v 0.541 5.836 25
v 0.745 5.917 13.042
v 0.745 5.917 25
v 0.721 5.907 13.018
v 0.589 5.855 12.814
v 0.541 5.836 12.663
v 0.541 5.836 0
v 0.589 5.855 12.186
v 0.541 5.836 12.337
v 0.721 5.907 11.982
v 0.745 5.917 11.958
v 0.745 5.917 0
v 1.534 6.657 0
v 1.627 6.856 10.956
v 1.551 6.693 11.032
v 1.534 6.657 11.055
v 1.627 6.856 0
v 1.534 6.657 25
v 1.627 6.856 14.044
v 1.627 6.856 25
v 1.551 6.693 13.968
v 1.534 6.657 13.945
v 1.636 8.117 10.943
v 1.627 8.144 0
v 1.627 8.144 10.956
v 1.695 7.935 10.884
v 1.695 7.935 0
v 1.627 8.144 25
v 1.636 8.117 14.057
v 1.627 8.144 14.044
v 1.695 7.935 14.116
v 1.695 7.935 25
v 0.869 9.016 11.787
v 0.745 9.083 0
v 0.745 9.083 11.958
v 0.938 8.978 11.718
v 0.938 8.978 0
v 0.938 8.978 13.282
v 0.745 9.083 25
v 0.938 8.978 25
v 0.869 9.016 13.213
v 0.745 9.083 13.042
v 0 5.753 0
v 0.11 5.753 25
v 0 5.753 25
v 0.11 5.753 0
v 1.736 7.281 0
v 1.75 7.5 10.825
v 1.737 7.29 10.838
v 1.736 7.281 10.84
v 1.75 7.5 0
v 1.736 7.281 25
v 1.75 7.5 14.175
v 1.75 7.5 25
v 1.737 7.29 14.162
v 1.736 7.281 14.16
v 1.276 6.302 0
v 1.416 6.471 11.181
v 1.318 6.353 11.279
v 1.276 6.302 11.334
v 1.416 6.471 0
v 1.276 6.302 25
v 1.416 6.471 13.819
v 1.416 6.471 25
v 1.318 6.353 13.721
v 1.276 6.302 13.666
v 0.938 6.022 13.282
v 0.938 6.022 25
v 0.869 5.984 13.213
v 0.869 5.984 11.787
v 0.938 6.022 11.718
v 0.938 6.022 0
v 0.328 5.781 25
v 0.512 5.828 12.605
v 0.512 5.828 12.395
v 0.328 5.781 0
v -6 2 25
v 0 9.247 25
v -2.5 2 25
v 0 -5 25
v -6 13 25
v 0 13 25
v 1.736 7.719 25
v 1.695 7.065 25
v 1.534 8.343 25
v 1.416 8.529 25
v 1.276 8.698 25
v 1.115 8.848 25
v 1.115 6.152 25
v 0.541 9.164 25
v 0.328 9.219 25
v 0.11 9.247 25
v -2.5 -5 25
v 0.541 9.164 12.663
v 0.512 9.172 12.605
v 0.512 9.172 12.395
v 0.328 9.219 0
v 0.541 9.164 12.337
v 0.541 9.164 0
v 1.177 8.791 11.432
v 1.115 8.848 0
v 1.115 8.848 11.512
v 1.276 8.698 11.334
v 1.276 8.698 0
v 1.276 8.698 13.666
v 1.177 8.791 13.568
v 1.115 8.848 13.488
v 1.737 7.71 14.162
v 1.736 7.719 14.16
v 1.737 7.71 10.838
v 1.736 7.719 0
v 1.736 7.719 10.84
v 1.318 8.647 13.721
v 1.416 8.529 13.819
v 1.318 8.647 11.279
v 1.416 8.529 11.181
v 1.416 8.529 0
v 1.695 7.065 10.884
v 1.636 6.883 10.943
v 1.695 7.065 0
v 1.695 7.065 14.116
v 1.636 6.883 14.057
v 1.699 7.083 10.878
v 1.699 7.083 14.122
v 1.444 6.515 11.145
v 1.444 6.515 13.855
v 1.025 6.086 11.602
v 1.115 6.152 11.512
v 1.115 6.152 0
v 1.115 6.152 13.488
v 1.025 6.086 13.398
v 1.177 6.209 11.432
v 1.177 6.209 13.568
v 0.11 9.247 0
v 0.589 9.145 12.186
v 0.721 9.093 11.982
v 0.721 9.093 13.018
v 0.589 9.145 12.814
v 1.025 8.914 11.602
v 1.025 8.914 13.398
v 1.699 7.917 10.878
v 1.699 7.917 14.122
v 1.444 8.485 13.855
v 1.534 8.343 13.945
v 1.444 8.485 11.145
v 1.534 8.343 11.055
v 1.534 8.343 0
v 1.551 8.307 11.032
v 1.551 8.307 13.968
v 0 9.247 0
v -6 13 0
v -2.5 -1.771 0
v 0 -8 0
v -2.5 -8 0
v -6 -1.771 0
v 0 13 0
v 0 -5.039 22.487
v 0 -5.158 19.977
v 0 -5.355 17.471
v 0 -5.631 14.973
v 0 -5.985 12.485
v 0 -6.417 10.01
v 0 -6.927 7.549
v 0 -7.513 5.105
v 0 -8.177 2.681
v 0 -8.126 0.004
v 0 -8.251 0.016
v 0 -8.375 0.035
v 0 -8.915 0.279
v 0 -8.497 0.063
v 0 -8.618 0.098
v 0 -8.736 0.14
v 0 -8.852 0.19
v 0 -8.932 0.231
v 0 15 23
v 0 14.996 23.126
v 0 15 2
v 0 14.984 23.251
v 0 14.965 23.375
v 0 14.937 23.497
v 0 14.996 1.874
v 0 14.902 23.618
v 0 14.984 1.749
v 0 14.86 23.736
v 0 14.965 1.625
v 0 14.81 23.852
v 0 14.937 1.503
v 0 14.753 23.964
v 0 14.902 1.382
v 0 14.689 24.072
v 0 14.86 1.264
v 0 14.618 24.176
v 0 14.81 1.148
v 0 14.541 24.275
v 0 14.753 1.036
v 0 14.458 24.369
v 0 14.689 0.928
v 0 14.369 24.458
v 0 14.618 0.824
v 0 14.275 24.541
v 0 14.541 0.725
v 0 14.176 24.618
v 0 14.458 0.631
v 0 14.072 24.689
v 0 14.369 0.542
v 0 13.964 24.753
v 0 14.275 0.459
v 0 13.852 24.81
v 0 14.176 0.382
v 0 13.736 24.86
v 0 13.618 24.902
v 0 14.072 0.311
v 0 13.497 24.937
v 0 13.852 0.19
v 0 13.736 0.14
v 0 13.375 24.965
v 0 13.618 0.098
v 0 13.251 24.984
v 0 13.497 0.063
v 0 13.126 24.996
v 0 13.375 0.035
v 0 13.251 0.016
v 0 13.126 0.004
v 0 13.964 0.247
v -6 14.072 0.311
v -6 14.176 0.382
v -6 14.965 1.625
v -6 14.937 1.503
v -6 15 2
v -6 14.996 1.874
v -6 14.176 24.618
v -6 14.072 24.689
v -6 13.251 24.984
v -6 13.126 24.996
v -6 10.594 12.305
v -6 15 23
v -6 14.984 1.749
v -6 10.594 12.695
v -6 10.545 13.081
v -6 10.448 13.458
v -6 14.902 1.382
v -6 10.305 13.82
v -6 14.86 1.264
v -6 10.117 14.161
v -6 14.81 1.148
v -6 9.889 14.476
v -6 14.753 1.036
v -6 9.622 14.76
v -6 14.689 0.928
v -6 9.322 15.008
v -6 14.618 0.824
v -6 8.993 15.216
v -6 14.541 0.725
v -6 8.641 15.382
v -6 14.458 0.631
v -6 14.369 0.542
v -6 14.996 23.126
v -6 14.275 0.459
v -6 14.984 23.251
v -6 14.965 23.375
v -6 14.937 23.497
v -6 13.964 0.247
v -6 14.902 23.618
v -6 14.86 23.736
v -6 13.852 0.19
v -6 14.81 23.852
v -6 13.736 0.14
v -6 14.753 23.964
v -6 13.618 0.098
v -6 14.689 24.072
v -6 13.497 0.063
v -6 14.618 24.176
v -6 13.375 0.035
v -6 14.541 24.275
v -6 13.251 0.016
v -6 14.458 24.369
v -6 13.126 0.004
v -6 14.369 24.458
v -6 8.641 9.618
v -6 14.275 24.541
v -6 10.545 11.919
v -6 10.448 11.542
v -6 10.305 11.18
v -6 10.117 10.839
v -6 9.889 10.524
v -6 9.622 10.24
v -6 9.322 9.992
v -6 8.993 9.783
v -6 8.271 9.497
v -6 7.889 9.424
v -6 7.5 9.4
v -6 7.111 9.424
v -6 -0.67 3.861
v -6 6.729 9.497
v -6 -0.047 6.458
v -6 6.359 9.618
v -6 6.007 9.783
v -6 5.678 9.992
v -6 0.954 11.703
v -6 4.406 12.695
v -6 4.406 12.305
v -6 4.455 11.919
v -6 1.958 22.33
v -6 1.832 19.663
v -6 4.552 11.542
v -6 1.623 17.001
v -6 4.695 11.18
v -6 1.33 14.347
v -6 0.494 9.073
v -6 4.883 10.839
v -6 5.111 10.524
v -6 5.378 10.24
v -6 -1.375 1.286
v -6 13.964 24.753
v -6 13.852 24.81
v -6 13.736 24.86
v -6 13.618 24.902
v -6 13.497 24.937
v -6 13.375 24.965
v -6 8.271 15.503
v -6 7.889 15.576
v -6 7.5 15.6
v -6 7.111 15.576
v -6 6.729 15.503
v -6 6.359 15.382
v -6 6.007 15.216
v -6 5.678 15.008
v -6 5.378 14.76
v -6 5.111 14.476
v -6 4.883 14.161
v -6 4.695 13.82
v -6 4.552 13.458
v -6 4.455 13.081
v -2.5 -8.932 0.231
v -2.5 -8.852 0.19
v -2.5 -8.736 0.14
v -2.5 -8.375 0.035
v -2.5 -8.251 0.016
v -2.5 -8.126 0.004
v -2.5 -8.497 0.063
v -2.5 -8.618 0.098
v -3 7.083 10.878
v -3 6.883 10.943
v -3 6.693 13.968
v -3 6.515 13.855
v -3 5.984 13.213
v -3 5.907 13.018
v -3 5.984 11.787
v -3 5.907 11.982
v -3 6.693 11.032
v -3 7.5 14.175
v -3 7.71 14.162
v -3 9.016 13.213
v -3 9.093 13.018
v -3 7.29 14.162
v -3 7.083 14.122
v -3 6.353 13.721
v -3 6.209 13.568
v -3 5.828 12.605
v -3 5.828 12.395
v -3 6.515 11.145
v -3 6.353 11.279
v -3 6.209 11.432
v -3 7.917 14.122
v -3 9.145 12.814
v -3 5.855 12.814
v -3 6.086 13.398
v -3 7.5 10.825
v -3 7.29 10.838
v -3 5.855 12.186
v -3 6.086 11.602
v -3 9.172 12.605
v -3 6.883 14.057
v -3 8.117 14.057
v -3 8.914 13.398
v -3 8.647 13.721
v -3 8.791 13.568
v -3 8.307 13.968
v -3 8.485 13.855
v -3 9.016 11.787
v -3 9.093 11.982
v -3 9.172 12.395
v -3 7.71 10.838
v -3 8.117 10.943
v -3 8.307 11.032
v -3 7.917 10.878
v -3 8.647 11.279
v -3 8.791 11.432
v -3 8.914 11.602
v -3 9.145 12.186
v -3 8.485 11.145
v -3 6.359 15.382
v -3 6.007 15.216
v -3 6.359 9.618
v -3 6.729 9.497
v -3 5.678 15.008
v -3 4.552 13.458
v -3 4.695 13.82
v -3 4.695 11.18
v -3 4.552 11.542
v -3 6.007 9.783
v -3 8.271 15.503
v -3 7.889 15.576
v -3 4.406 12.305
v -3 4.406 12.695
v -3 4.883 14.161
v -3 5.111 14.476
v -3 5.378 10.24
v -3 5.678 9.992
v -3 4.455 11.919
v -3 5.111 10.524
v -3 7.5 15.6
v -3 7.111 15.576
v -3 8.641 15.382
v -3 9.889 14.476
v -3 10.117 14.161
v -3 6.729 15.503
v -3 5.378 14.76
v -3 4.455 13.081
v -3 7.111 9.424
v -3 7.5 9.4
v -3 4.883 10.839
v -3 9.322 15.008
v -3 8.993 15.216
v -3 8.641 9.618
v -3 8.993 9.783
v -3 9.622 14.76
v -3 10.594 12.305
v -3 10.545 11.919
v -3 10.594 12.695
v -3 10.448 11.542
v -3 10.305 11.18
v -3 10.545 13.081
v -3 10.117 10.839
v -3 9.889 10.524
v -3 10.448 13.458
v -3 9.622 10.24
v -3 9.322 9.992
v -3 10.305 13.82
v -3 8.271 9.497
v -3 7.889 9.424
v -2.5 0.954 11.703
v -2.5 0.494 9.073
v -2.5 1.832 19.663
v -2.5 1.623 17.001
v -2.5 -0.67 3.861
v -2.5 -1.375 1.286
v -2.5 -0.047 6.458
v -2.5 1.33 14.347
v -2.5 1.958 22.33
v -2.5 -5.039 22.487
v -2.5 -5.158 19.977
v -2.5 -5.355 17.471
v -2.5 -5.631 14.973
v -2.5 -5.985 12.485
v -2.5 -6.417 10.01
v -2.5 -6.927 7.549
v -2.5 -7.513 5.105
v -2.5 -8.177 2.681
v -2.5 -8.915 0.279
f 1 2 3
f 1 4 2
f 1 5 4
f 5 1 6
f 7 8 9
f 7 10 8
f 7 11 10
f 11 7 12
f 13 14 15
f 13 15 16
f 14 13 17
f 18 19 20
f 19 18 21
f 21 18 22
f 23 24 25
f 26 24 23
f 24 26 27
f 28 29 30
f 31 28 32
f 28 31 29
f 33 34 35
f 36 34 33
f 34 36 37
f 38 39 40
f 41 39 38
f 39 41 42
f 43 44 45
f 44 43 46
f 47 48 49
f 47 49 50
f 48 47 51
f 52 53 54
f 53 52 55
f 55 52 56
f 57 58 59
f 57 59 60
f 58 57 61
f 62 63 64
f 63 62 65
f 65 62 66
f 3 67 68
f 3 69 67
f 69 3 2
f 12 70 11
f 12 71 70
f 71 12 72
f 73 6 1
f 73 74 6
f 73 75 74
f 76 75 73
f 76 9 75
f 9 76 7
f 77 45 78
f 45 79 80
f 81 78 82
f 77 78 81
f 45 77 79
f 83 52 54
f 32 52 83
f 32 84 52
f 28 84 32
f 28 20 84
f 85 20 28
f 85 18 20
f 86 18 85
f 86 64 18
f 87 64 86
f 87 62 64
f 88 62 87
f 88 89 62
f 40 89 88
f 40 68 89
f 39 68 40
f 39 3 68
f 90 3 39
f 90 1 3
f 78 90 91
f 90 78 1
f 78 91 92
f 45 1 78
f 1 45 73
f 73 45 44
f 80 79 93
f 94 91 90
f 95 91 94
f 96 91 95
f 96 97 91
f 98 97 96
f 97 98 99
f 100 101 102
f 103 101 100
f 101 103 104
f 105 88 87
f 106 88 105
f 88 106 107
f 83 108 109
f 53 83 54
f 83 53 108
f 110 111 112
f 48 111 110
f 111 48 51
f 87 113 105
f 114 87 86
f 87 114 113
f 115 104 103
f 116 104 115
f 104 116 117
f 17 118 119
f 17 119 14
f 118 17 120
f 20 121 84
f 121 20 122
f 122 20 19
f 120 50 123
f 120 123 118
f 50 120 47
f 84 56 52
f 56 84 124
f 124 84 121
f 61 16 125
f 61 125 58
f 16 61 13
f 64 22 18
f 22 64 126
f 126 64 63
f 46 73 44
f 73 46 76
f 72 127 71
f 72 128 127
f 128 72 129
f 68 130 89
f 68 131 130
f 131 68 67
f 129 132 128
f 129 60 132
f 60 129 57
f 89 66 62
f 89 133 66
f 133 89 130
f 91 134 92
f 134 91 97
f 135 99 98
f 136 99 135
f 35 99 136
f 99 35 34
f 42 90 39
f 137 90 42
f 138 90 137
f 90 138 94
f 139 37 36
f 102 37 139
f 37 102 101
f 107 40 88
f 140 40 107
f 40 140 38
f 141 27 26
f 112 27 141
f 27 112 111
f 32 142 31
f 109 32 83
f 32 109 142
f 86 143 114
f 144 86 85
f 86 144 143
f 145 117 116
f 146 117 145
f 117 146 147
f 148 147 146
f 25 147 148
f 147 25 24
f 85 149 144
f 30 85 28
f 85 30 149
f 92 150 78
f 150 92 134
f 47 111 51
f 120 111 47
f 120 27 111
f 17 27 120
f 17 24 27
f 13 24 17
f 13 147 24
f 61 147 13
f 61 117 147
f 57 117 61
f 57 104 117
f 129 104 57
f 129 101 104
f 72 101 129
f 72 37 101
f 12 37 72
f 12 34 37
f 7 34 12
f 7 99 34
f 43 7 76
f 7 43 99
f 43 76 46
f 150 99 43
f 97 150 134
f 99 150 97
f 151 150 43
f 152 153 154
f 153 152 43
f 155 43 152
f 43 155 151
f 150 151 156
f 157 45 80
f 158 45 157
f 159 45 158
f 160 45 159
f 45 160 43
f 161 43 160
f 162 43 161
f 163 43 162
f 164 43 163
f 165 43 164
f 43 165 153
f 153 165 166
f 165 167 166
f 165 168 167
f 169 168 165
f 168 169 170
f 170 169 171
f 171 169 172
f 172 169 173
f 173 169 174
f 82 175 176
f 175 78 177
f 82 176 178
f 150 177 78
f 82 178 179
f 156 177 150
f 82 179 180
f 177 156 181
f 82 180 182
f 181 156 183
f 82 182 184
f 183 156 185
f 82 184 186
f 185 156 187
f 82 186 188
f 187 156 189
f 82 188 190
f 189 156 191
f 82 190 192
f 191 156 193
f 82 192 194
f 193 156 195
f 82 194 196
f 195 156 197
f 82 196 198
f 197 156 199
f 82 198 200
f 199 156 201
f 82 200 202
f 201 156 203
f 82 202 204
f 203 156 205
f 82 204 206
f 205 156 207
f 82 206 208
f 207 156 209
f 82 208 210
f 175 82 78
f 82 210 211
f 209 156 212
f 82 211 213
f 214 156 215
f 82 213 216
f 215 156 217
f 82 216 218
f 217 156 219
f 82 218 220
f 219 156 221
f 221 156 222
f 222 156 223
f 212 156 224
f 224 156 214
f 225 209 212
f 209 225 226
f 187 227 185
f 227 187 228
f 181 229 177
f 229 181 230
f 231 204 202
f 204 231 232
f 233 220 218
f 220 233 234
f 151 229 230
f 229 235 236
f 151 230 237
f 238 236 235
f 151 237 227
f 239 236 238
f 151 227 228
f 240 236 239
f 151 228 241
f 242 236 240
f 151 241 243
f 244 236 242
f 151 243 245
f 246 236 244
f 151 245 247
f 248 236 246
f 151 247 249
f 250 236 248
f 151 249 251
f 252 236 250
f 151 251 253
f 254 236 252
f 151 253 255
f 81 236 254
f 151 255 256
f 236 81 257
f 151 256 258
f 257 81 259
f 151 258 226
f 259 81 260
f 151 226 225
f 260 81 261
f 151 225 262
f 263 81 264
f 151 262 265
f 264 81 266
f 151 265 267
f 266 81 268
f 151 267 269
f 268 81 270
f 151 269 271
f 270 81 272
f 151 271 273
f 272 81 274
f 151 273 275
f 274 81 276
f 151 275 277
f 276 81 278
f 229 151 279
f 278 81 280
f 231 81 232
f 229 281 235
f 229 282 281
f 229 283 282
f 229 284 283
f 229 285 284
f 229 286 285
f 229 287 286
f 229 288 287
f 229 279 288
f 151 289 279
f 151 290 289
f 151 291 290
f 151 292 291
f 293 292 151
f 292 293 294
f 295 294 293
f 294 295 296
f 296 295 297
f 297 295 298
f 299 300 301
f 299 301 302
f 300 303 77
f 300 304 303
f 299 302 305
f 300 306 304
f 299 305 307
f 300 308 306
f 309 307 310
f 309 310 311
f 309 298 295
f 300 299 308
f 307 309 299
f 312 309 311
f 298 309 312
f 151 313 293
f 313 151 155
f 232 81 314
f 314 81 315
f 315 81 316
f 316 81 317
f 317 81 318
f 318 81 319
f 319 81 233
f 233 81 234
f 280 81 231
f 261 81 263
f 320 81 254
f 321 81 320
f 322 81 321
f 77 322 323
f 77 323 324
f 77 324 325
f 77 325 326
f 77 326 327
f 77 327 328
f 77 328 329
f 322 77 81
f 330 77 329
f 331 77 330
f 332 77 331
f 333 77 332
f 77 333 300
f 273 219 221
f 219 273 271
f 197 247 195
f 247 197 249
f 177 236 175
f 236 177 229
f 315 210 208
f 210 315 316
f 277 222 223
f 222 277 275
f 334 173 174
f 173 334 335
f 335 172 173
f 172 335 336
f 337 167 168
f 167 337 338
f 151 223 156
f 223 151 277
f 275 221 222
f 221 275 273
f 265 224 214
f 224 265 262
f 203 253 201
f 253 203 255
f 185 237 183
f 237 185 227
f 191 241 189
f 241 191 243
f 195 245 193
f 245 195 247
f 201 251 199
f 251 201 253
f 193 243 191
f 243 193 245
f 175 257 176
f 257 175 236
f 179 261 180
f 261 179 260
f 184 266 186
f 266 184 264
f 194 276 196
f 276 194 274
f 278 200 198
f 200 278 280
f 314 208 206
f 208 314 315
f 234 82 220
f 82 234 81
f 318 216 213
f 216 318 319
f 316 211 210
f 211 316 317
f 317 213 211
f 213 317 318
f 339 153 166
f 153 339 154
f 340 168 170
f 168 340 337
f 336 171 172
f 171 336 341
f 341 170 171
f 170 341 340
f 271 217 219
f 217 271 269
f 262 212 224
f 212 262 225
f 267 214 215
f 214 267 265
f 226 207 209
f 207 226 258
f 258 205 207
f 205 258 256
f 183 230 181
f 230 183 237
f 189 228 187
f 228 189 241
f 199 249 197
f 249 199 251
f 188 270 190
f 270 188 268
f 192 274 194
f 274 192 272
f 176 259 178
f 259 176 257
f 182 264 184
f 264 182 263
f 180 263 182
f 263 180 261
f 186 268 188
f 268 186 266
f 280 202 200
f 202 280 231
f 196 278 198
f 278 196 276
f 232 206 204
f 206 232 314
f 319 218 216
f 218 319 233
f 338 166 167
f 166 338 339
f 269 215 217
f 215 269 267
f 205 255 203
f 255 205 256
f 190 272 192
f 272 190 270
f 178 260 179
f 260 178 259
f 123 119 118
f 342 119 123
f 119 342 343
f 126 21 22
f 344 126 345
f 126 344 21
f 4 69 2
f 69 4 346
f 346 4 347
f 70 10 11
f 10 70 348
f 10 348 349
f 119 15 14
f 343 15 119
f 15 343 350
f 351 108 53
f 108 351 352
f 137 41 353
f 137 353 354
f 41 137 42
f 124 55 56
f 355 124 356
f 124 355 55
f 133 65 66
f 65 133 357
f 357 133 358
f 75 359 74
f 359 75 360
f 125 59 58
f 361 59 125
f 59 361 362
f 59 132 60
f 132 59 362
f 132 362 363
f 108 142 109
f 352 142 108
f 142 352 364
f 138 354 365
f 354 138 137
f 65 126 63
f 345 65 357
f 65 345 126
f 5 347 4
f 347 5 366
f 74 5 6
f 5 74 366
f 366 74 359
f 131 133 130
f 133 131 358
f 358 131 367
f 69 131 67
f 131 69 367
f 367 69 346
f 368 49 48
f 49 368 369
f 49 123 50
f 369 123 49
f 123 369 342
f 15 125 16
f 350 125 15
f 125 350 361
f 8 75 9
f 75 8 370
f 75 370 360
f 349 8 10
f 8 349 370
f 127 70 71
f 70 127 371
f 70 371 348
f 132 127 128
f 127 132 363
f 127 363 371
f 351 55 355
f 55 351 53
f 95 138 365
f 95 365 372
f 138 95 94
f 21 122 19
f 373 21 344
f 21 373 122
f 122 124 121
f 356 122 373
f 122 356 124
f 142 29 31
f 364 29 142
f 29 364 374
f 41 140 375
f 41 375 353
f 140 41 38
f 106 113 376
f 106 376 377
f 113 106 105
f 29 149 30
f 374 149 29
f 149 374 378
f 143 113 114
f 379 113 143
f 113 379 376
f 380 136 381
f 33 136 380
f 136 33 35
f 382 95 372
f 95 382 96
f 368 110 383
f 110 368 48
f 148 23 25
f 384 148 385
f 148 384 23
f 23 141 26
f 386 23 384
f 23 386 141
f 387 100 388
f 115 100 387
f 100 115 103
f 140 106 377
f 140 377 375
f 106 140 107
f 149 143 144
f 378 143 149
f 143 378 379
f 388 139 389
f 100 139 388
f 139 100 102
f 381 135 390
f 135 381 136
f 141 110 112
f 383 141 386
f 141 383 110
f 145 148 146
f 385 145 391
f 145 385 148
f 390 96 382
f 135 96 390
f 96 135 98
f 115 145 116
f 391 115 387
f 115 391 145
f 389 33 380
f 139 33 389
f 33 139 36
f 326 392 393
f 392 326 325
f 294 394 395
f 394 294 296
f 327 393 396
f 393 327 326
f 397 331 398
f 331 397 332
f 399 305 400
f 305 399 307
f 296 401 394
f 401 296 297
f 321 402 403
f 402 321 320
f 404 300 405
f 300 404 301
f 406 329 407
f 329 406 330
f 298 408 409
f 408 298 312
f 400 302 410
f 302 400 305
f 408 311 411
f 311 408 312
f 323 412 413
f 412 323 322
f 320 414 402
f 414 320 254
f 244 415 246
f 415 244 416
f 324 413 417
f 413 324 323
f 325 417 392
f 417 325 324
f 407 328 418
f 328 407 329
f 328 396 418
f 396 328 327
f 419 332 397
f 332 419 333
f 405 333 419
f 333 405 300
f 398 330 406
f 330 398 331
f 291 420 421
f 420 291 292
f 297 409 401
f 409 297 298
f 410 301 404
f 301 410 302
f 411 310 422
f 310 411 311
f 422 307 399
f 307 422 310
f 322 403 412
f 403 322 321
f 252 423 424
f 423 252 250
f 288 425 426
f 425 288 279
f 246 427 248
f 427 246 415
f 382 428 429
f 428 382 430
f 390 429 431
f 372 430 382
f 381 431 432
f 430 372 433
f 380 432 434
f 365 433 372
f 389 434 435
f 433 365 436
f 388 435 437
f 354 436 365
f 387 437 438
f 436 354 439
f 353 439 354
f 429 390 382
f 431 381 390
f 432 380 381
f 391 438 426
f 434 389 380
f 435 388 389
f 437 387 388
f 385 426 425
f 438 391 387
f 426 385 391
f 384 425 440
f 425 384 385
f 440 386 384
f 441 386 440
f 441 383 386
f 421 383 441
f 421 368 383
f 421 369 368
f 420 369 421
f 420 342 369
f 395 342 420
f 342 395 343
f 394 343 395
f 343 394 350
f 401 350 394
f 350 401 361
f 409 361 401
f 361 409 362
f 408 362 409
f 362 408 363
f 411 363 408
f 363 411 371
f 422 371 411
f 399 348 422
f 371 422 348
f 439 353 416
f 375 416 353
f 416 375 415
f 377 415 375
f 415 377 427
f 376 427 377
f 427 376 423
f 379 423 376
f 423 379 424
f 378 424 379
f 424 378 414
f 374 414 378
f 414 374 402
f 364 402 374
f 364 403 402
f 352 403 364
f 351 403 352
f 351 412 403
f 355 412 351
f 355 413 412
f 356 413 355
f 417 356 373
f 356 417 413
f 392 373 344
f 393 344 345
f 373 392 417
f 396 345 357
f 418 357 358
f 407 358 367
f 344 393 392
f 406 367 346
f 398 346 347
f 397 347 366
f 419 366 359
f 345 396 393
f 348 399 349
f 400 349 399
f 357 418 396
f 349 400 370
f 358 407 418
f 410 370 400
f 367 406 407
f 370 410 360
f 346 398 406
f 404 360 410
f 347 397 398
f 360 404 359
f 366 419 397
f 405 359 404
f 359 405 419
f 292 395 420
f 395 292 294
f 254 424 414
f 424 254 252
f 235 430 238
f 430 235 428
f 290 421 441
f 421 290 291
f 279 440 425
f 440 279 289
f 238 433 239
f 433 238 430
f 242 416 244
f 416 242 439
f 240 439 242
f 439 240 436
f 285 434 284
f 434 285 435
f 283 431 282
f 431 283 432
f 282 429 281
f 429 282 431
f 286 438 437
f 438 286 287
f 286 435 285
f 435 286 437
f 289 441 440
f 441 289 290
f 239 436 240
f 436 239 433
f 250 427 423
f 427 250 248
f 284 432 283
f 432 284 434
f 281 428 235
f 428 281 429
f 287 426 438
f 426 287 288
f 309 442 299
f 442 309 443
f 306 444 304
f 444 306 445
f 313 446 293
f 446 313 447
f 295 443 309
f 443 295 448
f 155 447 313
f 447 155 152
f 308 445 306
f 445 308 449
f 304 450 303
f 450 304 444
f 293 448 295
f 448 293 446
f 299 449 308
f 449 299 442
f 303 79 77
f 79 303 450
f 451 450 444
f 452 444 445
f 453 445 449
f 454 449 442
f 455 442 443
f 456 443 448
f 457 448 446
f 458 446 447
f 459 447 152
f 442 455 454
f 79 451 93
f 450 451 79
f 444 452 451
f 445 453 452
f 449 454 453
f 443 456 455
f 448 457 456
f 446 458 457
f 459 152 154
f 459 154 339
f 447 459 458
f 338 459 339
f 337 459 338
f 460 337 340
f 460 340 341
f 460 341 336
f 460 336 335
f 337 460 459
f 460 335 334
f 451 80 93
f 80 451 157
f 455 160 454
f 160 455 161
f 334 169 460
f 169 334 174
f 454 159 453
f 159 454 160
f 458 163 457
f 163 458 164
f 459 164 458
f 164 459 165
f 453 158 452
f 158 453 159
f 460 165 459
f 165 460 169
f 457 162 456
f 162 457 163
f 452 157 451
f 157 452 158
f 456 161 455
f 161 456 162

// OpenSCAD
// file: chamfers.scad
/* chamfers for openscad
 *
 *
 * (c) alj_rprp 2013 license GPL2.1
 */

// interface :
// chamfer				(len,r,rs)           : rounding of edge along z
// cylinder_chamfer	(majr,r,rs)				: circular rounding 
// rnd_wedge 			(len,lr,angle,r,rs)  : wedge with 1 rounded angle
// circular_rnd_wedge(majr,lr,angle,r,rs) : circular wedge/ 1 rounded angle

// len	: length of extrusion
// r		: rounding radius
// majr	: major radius of circular extrusion
// lr		: dist from left side of rounding center
// angle	: angle of wedge
// rs		: resolution - number of lines in the rounding
//
// use rs =0 for straight line chamfer in both chamfers
// wedges will look funny with rs < 5 or 6


$fn=64; 

//example=true;
example=false;

if(example==true) {
	chamfer(1,1,rs=8);
	translate([0,0,-1.5]) cylinder_chamfer(2.4,1,rs=2);
	translate([4,0,0]) rnd_wedge (1,1,30.0,0.3,rs=10);
	translate([4,0,-1.5]) 
		circular_rnd_wedge (0.5,0.5,30.0,0.3,rs=10);
}


module cylinder_chamfer(majr,r,rs=4)
{
	t=majr-r;
	p=r+0.1;
	rotate_extrude()	difference(){
		translate([t,0])square([p,p]);
		translate([t,0])circle(r,$fn=(rs+1)*4);
	}
}

module chamfer(len,r,rs=4)
{
	p=r+0.1;
	linear_extrude(height=len) difference()
	{
		square([p,p]);
		circle(r,$fn=(rs+1)*4);
	}
}

/*
 * lr = position centre rayon
 *	x1 = x component hypothenuse normal
 * x2 = x component up to point
 *
 * x1 = rr*sin(a)
 * x2 = y2/tan(a)
 *	y2 = rr*cos(a)+rr  
 *
 * base = lr + x1 + x2
 * base = lr + rr*( sin(a)+(cos(a)+1)/tan(a) 
*/
module rnd_wedge (len,lr,angle,r,rs=6) {
	rr=r*(sin(angle)+(cos(angle)+1)/tan(angle));
	ratio=(lr+rr)/lr;
	base=lr*ratio;
	b=base*tan(angle);
	h=base/cos(angle);

	linear_extrude(height=len)union(){
		polygon([[0,0],[lr,0],[lr+r*sin(angle),r*(1+cos(angle))],[0,b]]);
		translate([lr,r])intersection() {
			circle(r,$fn=(rs+1)*4);
			translate([0,-r-0.05])square([r+0.1,2*r+0.1]);
		}
	}
}

module circular_rnd_wedge (majr,lr,angle,r,rs=6) {
	rr=r*(sin(angle)+(cos(angle)+1)/tan(angle));
	ratio=(lr+rr)/lr;
	base=lr*ratio;
	b=base*tan(angle);
	h=base/cos(angle);

	rotate_extrude()translate([majr,0]) union(){
		polygon([[0,0],[lr,0],[lr+r*sin(angle),r*(1+cos(angle))],[0,b]]);
		translate([lr,r])intersection() {
			circle(r,$fn=(rs+1)*4);
			translate([0,-r-0.05])square([r+0.1,2*r+0.1]);
		}
	}
}
// main file
// Bed bracket for Deltatron by Mikrotron d.o.o.

use <chamfers.scad>;

// smoothing of curves
$fn = 50;

// extra dimension to remove ambiguity of walls
ex = 0.10;

// aluminium extrusion dimension
profile = 15;
profile_gap = 3.6; // frame groove width

// screw dimensions
screw_3x8_cap_dia = 5.7;
screw_3x8_cap_height = 3.2;

bed_dia = 170; // glass bed diameter
bed_overlap = 2; // glass bed overlap with the alu profile
bed_dia2 = 160; // lower bed cutoff

wall = 6;
bracket_width = 25;
bracket_thickness = 2.5;

// ENTRY POINT

translate([0, 0, bracket_width]) rotate([0, -90, 0]) bed_bracket();

module bed_bracket(){
    translate([-bed_dia/2, 0, -profile]) %frame();
    difference(){
        translate([-bracket_width, profile, 0]) draw_bracket();
        translate([0, -bed_dia/2 + bed_overlap, bracket_thickness]) 
            glass_bed(bed_dia,4);
        translate([0, -bed_dia/2, -ex]) 
            glass_bed(bed_dia2, bracket_thickness + 2*ex);
    }

}

module draw_bracket(){
    
    
    bracket_length = 25; // will be cut off to fit to frame
    
    translate([0, 0, wall]) rotate([180, 0, 0]) difference(){
            difference(){
            union(){
                rounded_rect(bracket_width, bracket_length, wall, 2);
                translate([0, profile/2, wall]) slider();
            }
        }
        
        // screw hole
        translate([bracket_width/2, profile/2, -ex]) {
            cylinder(d = screw_3x8_cap_dia/2 + 0.5, h = wall+2);
            cylinder(d = screw_3x8_cap_dia + 0.5, h = wall/2 + ex);
        }
    }
    
}

module slider(slider_length = bracket_width){
    // part that slides in frame groove
    difference(){
        rotate([0,90,0]) cylinder(d = profile_gap - ex, h = slider_length);
        translate([-ex, -profile_gap/2 - 2*ex, -profile_gap/2 - 2*ex])
            cube([slider_length + 2*ex, profile_gap + 2*ex, profile_gap/2 + 2*ex]);
    }
}


// NON-PRINTED PARTS

module frame(profile_length = bed_dia){
    // draws basic aluminium extrusion frame
    difference(){
        cube([profile_length, profile, profile]);
        translate([-ex, profile/2 - profile_gap/2, profile - profile_gap])
            cube([profile_length + 2*ex, profile_gap, profile_gap + ex]);
        translate([-ex, profile - profile_gap, profile/2 - profile_gap/2])
            cube([profile_length + 2*ex, profile_gap + ex, profile_gap]);
        translate([-ex, -ex, profile/2 - profile_gap/2])
            cube([profile_length + 2*ex, profile_gap + ex, profile_gap]);
        translate([-ex, profile/2 - profile_gap/2, -ex])
            cube([profile_length + 2*ex, profile_gap, profile_gap + ex]);
    }
}

module glass_bed(dia, thickness){
    cylinder(d = dia, h = thickness, $fn = 200);
}

//UTILITY

//draws a rounded rectangle
module rounded_rect(x, y, z, radius = 1) {
    translate([radius,radius,0]) //move origin to outer limits
	linear_extrude(height=z)
		minkowski() {
			square([x-2*radius,y-2*radius]); //keep outer dimensions given by x and y
			circle(r = radius, $fn=100);
		}
}
